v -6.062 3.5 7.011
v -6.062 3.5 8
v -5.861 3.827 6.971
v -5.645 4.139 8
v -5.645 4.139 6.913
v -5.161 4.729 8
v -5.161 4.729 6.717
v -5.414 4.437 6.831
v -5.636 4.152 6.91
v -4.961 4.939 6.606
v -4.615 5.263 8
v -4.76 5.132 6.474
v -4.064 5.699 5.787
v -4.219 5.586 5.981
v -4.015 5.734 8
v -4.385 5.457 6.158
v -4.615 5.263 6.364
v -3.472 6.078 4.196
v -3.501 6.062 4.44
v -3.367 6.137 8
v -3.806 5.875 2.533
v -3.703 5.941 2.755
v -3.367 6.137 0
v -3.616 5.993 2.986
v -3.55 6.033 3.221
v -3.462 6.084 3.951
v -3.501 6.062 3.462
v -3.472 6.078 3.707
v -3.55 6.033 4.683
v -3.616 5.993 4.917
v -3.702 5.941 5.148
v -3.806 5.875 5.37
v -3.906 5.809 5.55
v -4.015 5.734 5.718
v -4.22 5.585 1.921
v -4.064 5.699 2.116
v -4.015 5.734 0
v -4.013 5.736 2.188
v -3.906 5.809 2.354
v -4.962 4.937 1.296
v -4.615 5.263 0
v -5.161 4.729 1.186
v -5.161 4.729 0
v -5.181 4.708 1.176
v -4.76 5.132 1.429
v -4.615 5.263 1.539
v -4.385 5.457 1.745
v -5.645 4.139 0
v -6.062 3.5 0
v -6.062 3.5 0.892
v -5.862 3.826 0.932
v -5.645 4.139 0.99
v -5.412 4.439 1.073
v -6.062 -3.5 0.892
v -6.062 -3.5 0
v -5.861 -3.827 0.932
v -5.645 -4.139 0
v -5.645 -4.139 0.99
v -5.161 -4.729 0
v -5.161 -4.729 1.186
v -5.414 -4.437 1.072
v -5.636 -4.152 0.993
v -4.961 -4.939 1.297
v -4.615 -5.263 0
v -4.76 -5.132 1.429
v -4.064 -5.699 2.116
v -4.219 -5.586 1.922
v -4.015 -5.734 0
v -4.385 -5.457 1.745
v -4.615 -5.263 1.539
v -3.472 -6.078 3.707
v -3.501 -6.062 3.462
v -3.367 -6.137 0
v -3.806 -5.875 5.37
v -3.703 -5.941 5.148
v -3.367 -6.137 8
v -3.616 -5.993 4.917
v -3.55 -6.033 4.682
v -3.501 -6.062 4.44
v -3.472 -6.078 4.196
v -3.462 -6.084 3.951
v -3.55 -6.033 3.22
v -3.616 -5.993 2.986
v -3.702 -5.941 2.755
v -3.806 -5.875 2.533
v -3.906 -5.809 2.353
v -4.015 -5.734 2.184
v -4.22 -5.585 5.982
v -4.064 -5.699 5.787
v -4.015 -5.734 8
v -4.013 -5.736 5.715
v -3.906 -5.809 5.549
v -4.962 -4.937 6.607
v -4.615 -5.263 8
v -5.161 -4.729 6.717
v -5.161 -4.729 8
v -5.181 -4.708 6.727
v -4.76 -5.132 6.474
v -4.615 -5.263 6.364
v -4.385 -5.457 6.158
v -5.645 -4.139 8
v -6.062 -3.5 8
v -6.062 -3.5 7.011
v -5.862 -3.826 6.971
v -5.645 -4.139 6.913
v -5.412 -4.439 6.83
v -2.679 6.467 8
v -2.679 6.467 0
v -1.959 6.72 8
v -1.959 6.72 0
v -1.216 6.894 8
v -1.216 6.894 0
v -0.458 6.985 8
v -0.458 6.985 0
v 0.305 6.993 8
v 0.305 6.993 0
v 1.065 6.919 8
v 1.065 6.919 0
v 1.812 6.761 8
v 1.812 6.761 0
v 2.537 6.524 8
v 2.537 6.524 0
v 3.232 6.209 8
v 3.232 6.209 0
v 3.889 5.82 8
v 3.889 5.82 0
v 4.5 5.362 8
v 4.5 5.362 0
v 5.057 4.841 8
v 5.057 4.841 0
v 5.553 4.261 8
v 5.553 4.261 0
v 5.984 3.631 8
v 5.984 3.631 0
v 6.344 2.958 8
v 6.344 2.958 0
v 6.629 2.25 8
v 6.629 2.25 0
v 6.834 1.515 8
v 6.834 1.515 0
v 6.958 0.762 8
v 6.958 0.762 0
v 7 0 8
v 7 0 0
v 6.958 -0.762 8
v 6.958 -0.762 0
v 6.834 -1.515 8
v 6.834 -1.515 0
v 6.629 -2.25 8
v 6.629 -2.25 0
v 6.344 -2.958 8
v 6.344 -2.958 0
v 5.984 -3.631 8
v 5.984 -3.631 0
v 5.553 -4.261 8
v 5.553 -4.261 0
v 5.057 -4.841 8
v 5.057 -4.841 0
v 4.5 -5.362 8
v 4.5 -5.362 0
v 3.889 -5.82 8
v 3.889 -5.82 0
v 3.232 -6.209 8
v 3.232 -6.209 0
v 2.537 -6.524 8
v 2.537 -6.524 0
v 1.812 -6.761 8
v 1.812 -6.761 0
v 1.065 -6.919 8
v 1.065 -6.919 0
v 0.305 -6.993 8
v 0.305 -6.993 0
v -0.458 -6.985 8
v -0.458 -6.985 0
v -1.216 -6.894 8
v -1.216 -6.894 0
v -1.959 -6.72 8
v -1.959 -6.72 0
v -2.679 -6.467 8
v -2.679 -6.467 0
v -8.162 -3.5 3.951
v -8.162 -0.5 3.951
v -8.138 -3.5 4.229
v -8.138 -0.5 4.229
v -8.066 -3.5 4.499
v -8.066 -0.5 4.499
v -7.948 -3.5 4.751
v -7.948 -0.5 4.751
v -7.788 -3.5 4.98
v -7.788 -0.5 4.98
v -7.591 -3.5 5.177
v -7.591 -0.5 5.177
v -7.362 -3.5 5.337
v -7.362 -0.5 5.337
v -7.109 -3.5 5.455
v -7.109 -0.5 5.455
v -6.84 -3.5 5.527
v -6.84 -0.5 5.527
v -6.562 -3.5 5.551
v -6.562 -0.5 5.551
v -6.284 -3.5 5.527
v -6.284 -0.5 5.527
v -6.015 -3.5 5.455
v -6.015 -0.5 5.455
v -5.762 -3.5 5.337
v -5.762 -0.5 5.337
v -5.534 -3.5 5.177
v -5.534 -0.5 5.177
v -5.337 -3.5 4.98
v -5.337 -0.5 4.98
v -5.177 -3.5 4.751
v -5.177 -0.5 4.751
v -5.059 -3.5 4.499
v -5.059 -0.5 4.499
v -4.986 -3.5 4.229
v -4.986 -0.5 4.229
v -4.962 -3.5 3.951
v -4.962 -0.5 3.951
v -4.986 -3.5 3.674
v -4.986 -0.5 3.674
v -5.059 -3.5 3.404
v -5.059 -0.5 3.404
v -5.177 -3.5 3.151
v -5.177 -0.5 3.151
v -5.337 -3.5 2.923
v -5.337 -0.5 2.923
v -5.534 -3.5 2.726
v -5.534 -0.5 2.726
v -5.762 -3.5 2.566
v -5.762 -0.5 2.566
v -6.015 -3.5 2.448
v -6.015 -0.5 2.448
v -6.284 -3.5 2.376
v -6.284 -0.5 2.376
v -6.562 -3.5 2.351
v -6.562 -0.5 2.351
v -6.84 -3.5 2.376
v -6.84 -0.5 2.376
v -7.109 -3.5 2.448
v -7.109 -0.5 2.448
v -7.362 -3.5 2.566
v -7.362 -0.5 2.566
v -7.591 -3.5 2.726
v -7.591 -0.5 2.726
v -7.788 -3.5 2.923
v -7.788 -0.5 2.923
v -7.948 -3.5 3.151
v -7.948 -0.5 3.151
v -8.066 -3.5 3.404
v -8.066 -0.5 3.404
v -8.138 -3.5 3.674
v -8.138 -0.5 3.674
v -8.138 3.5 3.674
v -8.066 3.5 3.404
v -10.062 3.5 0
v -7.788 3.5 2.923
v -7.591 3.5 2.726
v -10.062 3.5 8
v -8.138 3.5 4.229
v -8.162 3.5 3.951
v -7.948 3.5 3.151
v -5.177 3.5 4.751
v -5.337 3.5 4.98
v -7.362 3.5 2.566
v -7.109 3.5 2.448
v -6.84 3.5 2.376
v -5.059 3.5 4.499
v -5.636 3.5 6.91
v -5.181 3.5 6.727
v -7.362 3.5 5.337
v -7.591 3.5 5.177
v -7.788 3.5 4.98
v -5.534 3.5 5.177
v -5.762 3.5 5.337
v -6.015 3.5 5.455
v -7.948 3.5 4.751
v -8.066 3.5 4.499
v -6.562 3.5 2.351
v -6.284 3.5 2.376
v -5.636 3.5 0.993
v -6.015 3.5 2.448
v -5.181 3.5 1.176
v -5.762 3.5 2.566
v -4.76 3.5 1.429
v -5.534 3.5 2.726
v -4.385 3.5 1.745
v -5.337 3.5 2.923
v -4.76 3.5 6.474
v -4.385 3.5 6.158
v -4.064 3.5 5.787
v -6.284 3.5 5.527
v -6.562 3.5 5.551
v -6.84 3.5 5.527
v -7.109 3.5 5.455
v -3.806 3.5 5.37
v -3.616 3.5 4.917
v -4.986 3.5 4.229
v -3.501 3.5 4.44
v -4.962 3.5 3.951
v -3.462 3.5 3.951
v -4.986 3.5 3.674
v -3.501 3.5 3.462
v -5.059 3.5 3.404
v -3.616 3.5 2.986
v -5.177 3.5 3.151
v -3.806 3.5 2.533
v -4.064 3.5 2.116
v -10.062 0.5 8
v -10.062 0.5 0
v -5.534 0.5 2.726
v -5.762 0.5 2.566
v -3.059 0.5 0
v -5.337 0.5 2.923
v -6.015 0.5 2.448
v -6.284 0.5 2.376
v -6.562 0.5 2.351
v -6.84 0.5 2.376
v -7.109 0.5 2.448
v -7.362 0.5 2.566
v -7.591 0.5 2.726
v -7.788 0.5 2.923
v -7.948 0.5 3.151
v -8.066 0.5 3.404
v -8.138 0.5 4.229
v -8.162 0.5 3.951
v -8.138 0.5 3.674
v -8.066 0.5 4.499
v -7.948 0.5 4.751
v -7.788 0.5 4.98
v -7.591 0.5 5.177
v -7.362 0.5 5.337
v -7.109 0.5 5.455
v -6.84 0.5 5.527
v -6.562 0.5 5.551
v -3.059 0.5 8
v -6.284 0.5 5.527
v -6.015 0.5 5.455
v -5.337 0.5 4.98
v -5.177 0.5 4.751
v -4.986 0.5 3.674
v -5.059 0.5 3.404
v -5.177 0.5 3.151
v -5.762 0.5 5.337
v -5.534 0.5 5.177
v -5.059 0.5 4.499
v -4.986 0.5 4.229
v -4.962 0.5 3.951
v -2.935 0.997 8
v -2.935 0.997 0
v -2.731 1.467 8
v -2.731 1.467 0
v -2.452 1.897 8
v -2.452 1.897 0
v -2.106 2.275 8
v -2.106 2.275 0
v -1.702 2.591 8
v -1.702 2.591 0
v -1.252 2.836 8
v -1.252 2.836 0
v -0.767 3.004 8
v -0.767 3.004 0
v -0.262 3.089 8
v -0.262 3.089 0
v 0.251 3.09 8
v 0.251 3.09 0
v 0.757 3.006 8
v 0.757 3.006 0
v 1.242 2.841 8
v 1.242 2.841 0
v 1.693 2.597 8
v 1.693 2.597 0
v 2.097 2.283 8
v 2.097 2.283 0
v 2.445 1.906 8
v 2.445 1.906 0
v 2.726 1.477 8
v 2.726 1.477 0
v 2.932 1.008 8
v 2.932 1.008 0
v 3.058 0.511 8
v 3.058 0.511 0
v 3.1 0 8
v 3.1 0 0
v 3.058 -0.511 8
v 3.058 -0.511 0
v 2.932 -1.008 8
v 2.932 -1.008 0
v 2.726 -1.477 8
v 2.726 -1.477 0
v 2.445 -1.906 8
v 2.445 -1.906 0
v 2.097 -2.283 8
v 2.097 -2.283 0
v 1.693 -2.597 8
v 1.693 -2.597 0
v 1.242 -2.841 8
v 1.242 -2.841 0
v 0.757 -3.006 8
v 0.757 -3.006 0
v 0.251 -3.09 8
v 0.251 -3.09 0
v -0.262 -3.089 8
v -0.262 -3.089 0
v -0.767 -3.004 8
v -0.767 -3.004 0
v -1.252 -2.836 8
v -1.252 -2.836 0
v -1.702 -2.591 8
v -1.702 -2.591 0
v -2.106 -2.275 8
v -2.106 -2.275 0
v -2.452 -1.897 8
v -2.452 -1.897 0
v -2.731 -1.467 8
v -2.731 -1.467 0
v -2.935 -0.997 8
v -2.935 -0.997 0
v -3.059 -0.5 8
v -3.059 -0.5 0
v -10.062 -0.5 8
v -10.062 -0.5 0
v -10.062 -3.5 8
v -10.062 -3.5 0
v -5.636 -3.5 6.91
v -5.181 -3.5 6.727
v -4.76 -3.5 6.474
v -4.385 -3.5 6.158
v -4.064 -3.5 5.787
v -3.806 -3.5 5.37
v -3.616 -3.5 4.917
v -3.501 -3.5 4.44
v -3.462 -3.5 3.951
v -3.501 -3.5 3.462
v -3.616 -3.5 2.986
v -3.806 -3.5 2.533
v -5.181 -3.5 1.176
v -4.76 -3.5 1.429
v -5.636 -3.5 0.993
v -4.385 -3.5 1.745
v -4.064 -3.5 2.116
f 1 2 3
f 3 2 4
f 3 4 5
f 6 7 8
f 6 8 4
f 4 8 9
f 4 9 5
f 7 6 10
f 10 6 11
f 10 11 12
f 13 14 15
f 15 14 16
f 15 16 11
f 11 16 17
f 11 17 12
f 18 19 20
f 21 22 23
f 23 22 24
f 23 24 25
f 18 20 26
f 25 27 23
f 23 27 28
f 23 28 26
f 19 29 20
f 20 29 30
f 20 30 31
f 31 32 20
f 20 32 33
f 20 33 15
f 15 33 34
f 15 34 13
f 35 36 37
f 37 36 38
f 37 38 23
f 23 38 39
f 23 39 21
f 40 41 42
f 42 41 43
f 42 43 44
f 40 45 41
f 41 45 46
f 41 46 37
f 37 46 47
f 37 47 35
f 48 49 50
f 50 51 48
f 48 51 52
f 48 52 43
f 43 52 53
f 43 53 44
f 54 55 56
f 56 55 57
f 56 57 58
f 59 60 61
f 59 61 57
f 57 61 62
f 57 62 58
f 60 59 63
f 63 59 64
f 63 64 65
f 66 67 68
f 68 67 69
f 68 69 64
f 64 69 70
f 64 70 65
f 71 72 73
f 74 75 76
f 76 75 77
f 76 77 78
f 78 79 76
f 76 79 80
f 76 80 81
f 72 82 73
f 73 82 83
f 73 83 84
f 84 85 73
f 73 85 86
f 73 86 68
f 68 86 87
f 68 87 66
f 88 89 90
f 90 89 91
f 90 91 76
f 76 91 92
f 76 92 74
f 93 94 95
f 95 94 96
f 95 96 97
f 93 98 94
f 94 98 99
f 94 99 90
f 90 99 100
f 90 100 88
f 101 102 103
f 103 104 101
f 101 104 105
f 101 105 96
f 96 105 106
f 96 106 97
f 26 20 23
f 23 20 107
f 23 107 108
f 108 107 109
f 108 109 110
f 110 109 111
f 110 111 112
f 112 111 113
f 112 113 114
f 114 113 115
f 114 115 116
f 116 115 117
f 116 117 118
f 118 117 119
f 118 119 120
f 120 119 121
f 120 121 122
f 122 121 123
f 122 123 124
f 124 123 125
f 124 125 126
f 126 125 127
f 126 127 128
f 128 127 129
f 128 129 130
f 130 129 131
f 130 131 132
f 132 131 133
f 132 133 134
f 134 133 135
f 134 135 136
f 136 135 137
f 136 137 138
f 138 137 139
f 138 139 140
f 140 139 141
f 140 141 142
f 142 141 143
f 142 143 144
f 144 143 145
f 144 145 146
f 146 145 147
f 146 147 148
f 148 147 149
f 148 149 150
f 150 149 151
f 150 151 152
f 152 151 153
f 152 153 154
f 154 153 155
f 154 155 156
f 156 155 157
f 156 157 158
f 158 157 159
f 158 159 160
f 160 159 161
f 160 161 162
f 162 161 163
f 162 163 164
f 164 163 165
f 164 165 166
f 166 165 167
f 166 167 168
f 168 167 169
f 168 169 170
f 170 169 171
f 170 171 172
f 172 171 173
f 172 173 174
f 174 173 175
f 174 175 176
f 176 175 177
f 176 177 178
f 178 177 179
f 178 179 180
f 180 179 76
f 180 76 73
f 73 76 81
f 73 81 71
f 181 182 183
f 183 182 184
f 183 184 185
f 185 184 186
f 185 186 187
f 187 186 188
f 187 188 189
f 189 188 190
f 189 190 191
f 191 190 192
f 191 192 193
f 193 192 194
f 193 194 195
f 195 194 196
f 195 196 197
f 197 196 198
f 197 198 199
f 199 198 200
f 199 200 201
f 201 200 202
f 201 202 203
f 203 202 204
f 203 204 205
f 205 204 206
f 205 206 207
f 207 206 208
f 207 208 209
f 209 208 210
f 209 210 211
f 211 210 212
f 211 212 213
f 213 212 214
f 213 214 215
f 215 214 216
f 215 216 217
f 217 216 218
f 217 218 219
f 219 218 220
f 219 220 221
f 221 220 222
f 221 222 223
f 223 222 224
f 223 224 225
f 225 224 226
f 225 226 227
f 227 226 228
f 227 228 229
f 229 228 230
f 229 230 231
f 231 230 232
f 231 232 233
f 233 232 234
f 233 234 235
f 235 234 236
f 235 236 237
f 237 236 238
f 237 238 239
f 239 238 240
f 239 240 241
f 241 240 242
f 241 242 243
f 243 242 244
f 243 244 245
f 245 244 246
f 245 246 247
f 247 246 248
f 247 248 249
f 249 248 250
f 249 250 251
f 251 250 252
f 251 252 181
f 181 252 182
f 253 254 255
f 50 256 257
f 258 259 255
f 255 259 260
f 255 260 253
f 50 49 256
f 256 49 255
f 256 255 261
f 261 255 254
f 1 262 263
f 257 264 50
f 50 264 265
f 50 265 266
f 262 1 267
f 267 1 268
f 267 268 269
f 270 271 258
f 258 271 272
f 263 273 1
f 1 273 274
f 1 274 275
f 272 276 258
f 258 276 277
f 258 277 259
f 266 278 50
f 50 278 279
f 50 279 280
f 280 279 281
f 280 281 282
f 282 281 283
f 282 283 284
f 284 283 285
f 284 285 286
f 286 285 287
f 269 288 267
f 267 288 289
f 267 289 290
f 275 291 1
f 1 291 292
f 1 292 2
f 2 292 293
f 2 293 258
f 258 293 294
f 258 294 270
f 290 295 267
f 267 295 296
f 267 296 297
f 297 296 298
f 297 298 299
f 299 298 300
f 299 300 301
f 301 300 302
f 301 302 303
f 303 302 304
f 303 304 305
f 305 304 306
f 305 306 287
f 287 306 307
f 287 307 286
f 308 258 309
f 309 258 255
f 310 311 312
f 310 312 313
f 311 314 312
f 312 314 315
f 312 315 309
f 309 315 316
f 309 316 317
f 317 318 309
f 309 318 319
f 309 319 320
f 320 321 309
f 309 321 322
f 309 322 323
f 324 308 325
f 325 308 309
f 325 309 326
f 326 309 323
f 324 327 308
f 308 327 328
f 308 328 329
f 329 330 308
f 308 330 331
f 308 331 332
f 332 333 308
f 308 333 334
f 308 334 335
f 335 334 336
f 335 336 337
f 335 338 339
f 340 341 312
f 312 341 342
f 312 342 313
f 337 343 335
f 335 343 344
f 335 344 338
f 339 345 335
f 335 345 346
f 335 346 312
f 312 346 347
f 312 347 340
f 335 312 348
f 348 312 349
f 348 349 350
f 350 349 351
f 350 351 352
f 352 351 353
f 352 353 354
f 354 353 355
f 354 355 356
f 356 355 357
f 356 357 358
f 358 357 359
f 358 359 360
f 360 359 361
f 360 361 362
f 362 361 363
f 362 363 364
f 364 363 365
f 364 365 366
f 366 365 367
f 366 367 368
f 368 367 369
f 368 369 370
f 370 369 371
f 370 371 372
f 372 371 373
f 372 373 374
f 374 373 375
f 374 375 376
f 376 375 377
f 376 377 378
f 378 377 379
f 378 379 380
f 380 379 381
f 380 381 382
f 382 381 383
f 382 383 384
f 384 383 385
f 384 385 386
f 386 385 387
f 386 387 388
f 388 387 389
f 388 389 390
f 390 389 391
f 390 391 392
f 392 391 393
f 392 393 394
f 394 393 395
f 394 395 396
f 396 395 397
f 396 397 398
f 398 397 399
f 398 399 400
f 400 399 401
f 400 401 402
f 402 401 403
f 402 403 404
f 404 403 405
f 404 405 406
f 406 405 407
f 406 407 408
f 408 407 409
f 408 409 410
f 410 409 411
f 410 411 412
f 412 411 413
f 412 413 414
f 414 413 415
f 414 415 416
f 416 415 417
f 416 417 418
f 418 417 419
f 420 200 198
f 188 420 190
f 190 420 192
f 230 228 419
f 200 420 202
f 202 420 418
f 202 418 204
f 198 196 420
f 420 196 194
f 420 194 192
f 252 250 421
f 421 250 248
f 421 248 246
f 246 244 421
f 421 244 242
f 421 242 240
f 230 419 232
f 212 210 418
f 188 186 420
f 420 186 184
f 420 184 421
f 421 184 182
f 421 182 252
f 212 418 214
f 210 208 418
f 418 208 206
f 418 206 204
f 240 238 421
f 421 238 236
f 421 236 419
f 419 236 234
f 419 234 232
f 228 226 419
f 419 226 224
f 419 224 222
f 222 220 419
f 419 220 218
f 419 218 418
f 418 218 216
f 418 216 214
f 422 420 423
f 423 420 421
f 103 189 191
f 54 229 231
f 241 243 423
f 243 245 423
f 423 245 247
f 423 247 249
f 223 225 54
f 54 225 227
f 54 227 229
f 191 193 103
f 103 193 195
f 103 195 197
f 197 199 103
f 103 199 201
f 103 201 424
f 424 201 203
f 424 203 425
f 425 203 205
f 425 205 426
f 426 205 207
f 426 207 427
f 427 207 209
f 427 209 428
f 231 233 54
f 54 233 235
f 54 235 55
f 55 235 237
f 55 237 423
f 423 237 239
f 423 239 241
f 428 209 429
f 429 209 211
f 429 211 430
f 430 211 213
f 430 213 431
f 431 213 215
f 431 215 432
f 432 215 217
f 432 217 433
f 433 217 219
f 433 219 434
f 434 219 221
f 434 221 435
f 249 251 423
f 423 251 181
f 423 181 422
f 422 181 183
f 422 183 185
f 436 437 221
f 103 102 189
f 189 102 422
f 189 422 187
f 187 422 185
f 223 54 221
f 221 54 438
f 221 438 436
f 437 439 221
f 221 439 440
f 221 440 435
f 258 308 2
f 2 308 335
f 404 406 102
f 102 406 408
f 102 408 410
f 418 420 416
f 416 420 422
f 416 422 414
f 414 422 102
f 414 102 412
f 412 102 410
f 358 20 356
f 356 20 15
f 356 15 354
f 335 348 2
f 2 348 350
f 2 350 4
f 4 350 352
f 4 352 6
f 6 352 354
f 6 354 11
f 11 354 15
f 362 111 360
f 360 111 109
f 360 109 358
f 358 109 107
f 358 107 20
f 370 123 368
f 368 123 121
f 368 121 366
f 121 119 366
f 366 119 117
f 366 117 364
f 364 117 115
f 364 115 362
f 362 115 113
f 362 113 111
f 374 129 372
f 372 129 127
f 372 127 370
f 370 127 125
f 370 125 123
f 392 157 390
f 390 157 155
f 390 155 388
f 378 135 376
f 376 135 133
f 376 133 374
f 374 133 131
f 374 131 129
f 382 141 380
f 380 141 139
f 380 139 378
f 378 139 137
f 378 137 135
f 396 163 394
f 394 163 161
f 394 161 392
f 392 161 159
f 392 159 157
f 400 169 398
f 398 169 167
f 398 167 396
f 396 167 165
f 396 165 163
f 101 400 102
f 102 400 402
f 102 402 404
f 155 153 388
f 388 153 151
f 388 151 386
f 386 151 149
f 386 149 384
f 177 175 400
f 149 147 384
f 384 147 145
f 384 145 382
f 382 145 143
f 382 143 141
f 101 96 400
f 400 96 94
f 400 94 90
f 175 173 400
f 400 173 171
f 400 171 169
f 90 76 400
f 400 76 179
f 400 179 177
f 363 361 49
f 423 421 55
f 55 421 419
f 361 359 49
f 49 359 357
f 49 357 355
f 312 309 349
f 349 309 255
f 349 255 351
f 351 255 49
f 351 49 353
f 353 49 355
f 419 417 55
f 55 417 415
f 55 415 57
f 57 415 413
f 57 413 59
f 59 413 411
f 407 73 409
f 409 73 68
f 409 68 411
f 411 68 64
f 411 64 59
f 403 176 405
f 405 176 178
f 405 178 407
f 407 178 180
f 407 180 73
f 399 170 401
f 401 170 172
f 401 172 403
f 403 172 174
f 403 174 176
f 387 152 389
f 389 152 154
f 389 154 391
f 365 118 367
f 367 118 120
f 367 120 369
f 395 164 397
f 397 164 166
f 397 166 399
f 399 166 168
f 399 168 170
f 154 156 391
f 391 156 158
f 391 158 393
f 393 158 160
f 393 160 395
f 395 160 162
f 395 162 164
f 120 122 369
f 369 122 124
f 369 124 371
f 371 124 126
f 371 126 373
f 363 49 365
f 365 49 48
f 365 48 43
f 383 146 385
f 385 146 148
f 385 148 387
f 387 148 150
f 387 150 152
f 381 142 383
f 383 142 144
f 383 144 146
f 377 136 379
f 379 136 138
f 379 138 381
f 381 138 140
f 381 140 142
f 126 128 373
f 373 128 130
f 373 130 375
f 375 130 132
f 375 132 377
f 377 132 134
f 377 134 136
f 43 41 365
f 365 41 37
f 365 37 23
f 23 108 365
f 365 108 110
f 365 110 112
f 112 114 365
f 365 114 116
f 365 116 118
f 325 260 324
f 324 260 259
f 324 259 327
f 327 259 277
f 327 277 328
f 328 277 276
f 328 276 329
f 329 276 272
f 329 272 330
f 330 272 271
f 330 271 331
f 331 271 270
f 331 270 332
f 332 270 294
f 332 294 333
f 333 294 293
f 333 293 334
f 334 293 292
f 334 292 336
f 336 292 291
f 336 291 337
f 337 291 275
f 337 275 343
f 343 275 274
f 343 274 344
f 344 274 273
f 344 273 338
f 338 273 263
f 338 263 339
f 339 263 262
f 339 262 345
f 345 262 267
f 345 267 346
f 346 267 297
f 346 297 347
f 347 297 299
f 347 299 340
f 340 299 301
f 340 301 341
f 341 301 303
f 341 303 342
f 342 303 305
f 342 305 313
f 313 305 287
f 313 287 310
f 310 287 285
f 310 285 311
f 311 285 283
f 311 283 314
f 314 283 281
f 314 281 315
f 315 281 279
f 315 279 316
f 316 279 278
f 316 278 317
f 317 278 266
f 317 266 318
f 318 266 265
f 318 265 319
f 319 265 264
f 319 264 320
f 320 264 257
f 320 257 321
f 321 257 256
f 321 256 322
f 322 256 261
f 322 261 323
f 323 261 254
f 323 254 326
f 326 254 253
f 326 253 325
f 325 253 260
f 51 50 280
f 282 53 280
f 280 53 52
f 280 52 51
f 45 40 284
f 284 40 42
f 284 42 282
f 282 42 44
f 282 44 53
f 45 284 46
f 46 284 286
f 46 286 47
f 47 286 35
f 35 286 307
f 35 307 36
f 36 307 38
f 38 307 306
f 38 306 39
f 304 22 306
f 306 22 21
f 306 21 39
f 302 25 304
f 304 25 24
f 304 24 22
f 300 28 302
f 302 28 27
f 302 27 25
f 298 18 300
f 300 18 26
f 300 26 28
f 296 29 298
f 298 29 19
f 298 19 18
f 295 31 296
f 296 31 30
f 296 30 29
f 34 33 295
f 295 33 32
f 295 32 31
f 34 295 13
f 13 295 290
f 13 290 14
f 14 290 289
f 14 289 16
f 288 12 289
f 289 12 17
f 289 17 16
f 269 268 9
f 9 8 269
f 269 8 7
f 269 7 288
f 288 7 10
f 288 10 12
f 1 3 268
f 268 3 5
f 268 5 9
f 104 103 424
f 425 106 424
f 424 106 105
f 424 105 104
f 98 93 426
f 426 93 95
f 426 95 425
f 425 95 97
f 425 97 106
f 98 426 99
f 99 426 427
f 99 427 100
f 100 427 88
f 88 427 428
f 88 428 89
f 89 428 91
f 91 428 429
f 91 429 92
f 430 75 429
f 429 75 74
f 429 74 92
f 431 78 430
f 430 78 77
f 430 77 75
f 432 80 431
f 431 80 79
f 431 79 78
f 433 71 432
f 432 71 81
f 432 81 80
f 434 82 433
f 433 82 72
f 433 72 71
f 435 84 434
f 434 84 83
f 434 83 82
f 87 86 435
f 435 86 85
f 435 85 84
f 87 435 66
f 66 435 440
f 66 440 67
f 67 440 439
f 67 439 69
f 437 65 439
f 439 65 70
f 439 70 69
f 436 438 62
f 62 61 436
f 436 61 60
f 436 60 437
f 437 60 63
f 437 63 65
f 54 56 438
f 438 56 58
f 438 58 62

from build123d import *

# Parameters (mm, degrees)
BOSS_EXTRUDE1_DEPTH = 8
SKETCH2_R           = 1.6
CUT_EXTRUDE1_DEPTH  = 17.598115032
SKETCH3_R           = 3.1
CUT_EXTRUDE2_DEPTH  = 17.598115143
SKETCH4_R           = 3.1
CUT_EXTRUDE3_DEPTH  = 17.598115143


with BuildPart() as part:
    # Sketch1 → Boss-Extrude1 (new body)
    with BuildSketch(Plane.XY):
        with BuildLine():
            Line((-6.062177826, 3.5), (-10.062177826, 3.5))
            Line((-10.062177826, 3.5), (-10.062177826, 0.5))
            Line((-10.062177826, 0.5), (-3.059411708, 0.5))
            ThreePointArc((-3.059411708, 0.5), (3.1, 0), (-3.059411708, -0.5))
            Line((-3.059411708, -0.5), (-10.062177826, -0.5))
            Line((-10.062177826, -0.5), (-10.062177826, -3.5))
            Line((-10.062177826, -3.5), (-6.062177826, -3.5))
            ThreePointArc((-6.062177826, -3.5), (7, 0), (-6.062177826, 3.5))
        make_face()
    extrude(amount=BOSS_EXTRUDE1_DEPTH)

    # Sketch2 → Cut-Extrude1 (cut, through all)
    with BuildSketch(Plane(origin=(0, 3.5, 0), x_dir=(1, 0, 0), z_dir=(0, 1, 0))):
        with Locations(Location((-6.562177826, -3.951427487, 0), (0, 0, 90))):
            Circle(SKETCH2_R)
    extrude(amount=-CUT_EXTRUDE1_DEPTH, mode=Mode.SUBTRACT)

    # Sketch3 → Cut-Extrude2 (cut, through all)
    with BuildSketch(Plane(origin=(0, 3.5, 0), x_dir=(1, 0, 0), z_dir=(0, 1, 0))):
        with Locations((-6.562177826, -3.951427487)):
            Circle(SKETCH3_R)
    extrude(amount=CUT_EXTRUDE2_DEPTH, mode=Mode.SUBTRACT)

    # Sketch4 → Cut-Extrude3 (cut, through all)
    with BuildSketch(Plane.XZ.offset(3.5)):
        with Locations((-6.562177826, 3.951427487)):
            Circle(SKETCH4_R)
    extrude(amount=CUT_EXTRUDE3_DEPTH, mode=Mode.SUBTRACT)


solid = part.part
